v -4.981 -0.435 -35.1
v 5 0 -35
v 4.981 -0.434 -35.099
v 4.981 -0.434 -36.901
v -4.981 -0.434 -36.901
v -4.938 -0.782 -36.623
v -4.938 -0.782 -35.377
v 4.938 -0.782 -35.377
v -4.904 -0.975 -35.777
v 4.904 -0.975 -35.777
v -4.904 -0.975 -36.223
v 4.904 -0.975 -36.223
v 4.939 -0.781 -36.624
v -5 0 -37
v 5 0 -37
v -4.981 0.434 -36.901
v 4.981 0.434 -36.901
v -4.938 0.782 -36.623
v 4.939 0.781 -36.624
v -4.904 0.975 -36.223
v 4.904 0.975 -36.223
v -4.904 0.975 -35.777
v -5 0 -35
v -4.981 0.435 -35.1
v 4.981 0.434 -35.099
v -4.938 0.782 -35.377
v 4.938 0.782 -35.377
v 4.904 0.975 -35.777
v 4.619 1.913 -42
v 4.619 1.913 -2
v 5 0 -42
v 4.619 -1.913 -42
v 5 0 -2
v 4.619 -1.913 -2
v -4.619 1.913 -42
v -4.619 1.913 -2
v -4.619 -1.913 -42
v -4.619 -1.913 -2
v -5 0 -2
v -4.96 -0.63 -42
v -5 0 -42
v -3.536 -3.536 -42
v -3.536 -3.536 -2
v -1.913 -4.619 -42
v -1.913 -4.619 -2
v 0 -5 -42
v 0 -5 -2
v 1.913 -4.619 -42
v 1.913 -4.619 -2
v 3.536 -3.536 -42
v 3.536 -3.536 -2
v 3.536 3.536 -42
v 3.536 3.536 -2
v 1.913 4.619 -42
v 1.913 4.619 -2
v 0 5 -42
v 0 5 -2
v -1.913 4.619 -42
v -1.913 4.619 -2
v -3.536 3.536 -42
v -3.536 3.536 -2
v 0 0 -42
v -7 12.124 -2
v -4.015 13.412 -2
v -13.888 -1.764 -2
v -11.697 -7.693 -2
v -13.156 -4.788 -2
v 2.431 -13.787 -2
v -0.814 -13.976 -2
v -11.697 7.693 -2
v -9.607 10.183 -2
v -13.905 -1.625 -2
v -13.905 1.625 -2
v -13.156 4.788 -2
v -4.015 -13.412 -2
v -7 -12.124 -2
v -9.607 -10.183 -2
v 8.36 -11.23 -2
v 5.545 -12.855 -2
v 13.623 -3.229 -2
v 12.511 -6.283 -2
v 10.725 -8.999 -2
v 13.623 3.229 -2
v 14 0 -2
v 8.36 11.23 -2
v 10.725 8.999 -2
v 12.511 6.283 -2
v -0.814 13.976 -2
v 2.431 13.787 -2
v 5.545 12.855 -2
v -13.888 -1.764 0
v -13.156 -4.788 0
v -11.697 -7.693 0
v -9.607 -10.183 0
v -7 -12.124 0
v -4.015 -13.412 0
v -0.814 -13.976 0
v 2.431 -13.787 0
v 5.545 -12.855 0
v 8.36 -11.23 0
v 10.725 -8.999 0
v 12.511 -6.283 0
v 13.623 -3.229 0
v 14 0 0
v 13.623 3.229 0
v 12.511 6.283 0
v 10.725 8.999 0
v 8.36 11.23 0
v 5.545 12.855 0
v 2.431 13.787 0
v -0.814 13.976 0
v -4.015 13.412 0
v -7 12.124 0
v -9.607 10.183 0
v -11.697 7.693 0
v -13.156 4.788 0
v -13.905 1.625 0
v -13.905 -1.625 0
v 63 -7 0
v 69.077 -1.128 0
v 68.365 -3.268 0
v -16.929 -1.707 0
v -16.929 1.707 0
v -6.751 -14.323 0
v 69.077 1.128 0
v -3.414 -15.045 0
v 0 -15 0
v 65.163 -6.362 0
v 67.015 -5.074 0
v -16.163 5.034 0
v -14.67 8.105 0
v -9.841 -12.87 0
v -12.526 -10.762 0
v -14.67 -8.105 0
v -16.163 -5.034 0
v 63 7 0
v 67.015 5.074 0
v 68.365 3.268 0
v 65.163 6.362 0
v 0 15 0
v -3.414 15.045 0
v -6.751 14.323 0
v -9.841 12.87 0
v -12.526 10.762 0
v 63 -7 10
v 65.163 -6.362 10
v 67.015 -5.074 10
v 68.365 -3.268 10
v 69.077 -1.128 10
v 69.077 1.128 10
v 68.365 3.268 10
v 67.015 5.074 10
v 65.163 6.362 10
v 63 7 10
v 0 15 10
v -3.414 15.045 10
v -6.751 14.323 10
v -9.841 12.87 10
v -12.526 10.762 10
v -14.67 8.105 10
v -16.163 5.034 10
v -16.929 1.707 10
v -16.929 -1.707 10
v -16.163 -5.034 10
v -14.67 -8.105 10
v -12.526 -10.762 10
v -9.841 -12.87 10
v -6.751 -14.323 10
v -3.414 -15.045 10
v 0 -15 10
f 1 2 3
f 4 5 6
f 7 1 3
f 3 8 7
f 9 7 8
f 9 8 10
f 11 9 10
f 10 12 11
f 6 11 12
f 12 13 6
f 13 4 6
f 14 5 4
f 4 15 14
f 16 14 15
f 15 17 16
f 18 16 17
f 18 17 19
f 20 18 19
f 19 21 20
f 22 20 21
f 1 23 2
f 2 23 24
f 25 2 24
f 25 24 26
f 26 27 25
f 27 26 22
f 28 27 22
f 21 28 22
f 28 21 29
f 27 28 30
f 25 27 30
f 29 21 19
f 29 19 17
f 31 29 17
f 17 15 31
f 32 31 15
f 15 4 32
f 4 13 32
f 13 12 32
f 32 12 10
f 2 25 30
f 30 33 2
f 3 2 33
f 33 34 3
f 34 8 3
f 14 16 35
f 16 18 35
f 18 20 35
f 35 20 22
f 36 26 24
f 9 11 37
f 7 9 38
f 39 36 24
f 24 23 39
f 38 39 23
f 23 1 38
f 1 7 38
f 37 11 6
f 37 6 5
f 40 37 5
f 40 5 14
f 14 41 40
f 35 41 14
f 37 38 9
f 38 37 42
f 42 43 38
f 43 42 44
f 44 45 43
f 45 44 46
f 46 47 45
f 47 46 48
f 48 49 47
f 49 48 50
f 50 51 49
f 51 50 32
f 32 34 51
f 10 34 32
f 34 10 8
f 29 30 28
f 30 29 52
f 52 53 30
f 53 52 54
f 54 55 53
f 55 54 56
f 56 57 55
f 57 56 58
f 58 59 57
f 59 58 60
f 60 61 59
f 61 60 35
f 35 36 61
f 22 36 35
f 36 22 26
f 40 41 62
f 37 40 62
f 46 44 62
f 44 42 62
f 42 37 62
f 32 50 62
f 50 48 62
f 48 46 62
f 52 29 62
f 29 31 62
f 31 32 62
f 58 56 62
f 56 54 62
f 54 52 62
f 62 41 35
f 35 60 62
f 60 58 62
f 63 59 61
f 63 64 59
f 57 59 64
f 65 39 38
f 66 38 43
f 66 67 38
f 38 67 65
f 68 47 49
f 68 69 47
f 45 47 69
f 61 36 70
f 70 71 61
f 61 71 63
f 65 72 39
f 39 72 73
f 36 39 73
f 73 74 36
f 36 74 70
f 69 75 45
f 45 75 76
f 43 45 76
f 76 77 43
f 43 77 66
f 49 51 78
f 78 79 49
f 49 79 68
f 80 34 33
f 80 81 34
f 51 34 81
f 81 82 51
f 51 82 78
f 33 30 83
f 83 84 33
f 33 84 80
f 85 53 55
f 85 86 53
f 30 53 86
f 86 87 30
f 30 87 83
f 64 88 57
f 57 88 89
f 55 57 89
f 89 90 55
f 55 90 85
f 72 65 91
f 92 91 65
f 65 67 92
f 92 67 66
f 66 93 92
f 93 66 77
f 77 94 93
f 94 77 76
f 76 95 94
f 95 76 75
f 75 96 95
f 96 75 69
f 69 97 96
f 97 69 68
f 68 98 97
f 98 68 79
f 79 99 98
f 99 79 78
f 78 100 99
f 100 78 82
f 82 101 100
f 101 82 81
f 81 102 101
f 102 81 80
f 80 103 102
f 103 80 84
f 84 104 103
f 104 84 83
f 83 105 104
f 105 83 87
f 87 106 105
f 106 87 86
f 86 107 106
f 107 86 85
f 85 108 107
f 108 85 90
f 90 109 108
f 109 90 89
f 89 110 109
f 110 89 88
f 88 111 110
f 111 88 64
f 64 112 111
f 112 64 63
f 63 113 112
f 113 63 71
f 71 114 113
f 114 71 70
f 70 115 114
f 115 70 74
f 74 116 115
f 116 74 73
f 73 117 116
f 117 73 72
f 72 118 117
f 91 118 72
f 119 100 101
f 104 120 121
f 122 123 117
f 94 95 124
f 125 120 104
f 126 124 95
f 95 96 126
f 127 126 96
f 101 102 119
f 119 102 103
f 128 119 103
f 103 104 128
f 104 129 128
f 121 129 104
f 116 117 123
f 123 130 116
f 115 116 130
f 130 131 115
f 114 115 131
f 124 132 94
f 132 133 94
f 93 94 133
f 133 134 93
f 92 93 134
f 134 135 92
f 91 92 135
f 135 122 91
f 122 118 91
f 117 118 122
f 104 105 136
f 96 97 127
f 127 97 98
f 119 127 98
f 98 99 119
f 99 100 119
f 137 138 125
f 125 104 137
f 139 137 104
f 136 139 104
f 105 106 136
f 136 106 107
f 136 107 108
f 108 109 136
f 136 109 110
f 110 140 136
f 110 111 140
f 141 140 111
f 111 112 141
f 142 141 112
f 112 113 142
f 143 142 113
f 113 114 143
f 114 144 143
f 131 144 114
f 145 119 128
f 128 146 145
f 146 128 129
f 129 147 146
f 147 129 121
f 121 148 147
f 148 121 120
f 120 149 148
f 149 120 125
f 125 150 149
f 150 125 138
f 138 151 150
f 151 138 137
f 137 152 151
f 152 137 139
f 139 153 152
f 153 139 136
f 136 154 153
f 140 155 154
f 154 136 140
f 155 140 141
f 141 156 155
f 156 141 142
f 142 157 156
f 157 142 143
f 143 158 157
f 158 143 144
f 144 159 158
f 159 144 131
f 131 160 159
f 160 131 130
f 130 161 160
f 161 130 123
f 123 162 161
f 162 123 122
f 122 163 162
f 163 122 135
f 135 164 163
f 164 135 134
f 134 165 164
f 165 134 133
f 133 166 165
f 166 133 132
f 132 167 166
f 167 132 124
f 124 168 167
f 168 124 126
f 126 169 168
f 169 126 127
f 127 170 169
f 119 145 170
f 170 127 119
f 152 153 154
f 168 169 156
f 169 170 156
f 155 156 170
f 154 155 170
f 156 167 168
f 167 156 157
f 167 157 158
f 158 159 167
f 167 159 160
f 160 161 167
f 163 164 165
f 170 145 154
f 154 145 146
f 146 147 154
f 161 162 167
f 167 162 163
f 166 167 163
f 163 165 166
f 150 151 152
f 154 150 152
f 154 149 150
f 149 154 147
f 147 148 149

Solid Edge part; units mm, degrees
sketch "Sketch1" plane through (0, 0, 0) normal (0, 0, 1) x (1, 0, 0)
  line L0 (63, 7) -> (0, 15)
  arc A0 (0, 15) -> (0, -15) centre (-1.9048, 0) ccw
  line L1 (63, -7) -> (0, -15)
  arc A1 (63, 7) -> (63, -7) centre (62.1111, 0) cw
extrude "Protrusion1" add sketch "Sketch1" along normal blind 10
sketch "Sketch2" plane through (26.0711, 0, 0) normal (0, 0, -1) x (-0.992, -0.126, 0)
  circle A0 centre (25.8634, 3.2842) radius 5
extrude "ExtrudedProtrusion_2" add sketch "Sketch2" along normal blind 42
sketch "Sketch3" plane through (0, 0, 0) normal (1, 0, 0) x (0, 1, 0)
  circle A0 centre (0, -36) radius 1
extrude "Cutout1" cut sketch "Sketch3" along normal mid plane 36.7222
sketch "Sketch4" plane through (26.0711, 0, 0) normal (0, 0, -1) x (-0.992, -0.126, 0)
  circle A0 centre (25.8634, 3.2842) radius 14
extrude "ExtrudedProtrusion_3" add sketch "Sketch4" along normal blind 2
